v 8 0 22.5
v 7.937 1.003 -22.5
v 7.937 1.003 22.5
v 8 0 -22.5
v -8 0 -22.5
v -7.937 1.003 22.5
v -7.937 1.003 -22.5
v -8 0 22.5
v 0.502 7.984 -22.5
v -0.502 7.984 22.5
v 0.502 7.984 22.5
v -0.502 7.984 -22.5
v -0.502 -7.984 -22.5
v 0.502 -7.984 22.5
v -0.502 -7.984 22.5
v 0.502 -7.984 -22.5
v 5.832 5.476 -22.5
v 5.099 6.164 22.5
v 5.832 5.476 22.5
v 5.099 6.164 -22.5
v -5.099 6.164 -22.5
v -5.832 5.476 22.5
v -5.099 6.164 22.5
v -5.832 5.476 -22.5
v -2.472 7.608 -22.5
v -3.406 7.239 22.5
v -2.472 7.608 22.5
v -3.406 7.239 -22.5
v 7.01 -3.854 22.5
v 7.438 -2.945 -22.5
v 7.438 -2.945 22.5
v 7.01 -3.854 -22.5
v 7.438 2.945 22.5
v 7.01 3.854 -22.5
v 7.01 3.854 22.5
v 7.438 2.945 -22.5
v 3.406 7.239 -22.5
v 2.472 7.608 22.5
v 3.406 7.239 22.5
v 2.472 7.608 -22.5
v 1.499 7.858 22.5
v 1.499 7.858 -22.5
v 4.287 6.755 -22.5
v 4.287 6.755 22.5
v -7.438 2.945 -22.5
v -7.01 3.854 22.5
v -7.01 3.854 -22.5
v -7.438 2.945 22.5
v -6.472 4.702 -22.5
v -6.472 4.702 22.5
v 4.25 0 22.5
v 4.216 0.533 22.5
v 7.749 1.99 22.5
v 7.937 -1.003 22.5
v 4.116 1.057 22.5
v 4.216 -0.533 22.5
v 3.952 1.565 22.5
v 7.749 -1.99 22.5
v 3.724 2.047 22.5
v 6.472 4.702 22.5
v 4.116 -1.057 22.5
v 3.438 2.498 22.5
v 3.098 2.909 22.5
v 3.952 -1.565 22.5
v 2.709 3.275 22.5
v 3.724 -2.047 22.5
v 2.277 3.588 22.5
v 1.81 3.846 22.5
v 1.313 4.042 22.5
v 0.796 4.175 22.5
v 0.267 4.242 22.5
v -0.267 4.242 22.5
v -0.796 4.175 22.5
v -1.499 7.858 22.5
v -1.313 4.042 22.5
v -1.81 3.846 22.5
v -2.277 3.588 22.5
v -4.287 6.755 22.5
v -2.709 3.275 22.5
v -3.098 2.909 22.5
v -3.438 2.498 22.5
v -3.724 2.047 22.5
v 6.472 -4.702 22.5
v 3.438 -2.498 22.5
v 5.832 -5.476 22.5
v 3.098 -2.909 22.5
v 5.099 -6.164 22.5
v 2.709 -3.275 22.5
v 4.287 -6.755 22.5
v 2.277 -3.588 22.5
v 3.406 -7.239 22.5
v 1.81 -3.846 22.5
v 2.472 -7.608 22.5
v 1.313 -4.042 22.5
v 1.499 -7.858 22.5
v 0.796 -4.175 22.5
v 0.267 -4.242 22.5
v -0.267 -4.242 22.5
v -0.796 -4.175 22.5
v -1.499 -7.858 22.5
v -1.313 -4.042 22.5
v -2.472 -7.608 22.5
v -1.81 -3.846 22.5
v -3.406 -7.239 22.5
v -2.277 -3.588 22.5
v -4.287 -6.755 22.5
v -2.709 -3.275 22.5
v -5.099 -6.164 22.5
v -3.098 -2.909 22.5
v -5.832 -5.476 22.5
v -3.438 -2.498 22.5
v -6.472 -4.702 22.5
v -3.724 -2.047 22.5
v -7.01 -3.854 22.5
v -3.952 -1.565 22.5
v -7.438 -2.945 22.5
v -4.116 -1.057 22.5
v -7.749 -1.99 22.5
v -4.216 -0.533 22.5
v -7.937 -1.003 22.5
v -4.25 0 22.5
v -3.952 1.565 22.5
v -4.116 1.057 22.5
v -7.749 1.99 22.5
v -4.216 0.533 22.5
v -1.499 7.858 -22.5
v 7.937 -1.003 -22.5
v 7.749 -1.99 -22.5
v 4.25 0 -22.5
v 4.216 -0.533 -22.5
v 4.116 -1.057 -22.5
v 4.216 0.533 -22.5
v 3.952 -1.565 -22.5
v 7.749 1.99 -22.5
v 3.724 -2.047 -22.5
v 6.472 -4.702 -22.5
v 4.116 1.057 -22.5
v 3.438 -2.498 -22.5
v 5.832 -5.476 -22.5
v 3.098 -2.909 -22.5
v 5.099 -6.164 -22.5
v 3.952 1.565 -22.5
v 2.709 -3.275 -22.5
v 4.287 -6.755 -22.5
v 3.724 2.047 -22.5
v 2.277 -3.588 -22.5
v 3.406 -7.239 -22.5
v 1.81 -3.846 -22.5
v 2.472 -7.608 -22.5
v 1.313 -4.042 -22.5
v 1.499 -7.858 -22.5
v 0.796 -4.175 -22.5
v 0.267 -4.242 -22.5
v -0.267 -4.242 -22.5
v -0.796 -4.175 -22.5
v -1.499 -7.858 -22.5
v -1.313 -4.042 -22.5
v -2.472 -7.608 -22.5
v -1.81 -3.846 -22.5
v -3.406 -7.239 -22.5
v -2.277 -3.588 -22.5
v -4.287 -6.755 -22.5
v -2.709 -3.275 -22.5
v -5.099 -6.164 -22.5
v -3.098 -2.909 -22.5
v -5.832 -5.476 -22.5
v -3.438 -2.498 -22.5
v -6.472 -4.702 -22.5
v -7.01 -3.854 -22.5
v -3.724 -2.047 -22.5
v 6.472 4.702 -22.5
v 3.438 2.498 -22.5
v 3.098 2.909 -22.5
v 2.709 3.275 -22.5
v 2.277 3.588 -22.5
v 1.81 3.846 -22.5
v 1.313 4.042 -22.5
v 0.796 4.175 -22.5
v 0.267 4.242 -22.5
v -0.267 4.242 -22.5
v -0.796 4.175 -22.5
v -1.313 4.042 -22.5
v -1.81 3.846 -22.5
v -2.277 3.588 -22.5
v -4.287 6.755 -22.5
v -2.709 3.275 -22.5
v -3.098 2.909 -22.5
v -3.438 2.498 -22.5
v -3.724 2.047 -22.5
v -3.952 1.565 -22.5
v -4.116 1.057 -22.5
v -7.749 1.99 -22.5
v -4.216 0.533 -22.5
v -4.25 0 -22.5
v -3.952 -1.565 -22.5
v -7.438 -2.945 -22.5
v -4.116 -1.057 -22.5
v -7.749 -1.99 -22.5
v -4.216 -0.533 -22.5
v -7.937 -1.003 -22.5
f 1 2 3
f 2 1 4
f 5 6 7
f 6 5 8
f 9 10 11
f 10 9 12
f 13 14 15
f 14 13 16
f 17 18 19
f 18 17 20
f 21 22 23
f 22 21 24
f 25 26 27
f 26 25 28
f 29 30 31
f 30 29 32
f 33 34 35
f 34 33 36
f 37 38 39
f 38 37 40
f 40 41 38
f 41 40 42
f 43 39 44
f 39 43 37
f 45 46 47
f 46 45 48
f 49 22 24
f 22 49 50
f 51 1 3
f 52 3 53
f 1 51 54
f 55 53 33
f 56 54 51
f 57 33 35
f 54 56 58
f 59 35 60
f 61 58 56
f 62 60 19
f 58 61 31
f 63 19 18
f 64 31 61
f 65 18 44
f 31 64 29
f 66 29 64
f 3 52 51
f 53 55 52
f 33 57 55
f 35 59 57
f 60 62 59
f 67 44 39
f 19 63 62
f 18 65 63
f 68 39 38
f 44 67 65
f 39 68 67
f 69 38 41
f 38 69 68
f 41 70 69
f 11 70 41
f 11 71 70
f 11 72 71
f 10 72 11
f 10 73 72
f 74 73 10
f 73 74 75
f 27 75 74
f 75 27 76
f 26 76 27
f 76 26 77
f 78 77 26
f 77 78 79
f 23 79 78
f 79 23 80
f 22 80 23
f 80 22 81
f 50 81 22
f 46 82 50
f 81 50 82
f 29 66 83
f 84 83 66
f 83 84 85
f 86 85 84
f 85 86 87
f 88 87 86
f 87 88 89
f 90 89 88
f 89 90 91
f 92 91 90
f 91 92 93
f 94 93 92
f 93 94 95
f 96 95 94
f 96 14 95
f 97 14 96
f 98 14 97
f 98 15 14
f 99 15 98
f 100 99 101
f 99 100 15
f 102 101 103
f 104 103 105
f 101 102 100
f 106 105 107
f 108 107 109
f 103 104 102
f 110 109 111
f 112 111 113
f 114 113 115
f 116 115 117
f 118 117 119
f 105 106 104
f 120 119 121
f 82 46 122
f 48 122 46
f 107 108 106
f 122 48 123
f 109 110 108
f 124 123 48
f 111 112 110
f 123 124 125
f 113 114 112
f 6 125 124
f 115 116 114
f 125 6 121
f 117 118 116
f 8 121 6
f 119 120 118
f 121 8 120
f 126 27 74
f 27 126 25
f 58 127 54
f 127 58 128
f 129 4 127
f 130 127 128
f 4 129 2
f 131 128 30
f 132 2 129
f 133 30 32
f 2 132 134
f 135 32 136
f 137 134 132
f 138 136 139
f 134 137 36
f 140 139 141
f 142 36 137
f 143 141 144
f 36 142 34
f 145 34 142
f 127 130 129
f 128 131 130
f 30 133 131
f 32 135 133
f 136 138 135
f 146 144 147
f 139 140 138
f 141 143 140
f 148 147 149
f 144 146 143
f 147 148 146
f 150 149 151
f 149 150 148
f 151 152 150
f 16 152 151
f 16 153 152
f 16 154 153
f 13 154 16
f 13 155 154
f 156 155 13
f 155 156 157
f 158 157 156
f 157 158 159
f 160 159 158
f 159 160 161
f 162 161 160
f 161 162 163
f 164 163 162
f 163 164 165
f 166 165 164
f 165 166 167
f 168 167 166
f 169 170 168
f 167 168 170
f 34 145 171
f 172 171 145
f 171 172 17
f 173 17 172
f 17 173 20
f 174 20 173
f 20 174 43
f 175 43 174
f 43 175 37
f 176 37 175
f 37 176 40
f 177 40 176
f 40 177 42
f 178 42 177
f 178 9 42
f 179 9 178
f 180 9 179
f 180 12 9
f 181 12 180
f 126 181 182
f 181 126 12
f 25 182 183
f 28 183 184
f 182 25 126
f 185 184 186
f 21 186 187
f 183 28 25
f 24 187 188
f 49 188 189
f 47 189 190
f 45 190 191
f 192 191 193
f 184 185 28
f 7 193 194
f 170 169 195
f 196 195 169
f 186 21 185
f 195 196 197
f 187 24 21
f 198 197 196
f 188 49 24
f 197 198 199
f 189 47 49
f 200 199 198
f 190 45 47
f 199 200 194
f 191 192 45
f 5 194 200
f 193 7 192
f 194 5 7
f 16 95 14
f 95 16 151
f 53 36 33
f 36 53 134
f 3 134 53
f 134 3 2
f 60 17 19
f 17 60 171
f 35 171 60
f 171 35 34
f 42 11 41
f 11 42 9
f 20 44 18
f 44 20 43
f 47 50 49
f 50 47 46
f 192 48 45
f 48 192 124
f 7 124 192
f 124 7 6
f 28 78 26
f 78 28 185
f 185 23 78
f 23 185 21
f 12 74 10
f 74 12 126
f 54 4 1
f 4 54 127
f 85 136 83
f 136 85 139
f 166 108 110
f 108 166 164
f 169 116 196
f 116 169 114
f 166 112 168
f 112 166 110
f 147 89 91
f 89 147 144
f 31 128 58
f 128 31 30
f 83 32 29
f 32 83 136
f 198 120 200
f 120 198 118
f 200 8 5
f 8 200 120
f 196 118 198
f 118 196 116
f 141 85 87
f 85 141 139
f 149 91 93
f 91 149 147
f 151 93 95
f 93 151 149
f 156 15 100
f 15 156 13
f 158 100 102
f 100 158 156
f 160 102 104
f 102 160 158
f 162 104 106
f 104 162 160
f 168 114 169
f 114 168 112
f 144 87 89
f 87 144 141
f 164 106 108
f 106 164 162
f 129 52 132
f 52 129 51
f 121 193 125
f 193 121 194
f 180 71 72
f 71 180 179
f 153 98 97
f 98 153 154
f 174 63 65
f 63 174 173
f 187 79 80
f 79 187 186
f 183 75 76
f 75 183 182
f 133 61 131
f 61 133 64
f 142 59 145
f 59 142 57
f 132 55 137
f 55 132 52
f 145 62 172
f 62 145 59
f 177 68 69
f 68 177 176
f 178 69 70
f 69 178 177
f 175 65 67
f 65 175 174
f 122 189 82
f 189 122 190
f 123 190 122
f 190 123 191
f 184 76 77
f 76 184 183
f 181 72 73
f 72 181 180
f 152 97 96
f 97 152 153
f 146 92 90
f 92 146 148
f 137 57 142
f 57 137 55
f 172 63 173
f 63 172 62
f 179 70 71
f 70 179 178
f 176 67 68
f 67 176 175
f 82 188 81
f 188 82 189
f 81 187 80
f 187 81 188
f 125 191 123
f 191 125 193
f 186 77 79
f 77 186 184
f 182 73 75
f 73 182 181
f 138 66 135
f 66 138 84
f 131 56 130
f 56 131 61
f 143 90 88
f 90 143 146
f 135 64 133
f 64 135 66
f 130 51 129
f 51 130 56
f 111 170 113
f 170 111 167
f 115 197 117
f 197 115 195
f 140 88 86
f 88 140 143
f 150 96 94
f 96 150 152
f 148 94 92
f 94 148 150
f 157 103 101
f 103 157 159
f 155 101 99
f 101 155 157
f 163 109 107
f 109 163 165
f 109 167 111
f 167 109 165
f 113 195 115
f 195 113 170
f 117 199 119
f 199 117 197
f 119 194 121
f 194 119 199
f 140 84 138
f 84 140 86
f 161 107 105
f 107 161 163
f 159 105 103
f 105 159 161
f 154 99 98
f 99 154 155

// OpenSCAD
$fn = 50;


difference() {
	union() {
		translate(v = [0, 0, -22.5000000000]) {
			cylinder(h = 45, r = 8.0000000000);
		}
	}
	union() {
		translate(v = [0, 0, -100.0000000000]) {
			cylinder(h = 200, r = 4.2500000000);
		}
	}
}
